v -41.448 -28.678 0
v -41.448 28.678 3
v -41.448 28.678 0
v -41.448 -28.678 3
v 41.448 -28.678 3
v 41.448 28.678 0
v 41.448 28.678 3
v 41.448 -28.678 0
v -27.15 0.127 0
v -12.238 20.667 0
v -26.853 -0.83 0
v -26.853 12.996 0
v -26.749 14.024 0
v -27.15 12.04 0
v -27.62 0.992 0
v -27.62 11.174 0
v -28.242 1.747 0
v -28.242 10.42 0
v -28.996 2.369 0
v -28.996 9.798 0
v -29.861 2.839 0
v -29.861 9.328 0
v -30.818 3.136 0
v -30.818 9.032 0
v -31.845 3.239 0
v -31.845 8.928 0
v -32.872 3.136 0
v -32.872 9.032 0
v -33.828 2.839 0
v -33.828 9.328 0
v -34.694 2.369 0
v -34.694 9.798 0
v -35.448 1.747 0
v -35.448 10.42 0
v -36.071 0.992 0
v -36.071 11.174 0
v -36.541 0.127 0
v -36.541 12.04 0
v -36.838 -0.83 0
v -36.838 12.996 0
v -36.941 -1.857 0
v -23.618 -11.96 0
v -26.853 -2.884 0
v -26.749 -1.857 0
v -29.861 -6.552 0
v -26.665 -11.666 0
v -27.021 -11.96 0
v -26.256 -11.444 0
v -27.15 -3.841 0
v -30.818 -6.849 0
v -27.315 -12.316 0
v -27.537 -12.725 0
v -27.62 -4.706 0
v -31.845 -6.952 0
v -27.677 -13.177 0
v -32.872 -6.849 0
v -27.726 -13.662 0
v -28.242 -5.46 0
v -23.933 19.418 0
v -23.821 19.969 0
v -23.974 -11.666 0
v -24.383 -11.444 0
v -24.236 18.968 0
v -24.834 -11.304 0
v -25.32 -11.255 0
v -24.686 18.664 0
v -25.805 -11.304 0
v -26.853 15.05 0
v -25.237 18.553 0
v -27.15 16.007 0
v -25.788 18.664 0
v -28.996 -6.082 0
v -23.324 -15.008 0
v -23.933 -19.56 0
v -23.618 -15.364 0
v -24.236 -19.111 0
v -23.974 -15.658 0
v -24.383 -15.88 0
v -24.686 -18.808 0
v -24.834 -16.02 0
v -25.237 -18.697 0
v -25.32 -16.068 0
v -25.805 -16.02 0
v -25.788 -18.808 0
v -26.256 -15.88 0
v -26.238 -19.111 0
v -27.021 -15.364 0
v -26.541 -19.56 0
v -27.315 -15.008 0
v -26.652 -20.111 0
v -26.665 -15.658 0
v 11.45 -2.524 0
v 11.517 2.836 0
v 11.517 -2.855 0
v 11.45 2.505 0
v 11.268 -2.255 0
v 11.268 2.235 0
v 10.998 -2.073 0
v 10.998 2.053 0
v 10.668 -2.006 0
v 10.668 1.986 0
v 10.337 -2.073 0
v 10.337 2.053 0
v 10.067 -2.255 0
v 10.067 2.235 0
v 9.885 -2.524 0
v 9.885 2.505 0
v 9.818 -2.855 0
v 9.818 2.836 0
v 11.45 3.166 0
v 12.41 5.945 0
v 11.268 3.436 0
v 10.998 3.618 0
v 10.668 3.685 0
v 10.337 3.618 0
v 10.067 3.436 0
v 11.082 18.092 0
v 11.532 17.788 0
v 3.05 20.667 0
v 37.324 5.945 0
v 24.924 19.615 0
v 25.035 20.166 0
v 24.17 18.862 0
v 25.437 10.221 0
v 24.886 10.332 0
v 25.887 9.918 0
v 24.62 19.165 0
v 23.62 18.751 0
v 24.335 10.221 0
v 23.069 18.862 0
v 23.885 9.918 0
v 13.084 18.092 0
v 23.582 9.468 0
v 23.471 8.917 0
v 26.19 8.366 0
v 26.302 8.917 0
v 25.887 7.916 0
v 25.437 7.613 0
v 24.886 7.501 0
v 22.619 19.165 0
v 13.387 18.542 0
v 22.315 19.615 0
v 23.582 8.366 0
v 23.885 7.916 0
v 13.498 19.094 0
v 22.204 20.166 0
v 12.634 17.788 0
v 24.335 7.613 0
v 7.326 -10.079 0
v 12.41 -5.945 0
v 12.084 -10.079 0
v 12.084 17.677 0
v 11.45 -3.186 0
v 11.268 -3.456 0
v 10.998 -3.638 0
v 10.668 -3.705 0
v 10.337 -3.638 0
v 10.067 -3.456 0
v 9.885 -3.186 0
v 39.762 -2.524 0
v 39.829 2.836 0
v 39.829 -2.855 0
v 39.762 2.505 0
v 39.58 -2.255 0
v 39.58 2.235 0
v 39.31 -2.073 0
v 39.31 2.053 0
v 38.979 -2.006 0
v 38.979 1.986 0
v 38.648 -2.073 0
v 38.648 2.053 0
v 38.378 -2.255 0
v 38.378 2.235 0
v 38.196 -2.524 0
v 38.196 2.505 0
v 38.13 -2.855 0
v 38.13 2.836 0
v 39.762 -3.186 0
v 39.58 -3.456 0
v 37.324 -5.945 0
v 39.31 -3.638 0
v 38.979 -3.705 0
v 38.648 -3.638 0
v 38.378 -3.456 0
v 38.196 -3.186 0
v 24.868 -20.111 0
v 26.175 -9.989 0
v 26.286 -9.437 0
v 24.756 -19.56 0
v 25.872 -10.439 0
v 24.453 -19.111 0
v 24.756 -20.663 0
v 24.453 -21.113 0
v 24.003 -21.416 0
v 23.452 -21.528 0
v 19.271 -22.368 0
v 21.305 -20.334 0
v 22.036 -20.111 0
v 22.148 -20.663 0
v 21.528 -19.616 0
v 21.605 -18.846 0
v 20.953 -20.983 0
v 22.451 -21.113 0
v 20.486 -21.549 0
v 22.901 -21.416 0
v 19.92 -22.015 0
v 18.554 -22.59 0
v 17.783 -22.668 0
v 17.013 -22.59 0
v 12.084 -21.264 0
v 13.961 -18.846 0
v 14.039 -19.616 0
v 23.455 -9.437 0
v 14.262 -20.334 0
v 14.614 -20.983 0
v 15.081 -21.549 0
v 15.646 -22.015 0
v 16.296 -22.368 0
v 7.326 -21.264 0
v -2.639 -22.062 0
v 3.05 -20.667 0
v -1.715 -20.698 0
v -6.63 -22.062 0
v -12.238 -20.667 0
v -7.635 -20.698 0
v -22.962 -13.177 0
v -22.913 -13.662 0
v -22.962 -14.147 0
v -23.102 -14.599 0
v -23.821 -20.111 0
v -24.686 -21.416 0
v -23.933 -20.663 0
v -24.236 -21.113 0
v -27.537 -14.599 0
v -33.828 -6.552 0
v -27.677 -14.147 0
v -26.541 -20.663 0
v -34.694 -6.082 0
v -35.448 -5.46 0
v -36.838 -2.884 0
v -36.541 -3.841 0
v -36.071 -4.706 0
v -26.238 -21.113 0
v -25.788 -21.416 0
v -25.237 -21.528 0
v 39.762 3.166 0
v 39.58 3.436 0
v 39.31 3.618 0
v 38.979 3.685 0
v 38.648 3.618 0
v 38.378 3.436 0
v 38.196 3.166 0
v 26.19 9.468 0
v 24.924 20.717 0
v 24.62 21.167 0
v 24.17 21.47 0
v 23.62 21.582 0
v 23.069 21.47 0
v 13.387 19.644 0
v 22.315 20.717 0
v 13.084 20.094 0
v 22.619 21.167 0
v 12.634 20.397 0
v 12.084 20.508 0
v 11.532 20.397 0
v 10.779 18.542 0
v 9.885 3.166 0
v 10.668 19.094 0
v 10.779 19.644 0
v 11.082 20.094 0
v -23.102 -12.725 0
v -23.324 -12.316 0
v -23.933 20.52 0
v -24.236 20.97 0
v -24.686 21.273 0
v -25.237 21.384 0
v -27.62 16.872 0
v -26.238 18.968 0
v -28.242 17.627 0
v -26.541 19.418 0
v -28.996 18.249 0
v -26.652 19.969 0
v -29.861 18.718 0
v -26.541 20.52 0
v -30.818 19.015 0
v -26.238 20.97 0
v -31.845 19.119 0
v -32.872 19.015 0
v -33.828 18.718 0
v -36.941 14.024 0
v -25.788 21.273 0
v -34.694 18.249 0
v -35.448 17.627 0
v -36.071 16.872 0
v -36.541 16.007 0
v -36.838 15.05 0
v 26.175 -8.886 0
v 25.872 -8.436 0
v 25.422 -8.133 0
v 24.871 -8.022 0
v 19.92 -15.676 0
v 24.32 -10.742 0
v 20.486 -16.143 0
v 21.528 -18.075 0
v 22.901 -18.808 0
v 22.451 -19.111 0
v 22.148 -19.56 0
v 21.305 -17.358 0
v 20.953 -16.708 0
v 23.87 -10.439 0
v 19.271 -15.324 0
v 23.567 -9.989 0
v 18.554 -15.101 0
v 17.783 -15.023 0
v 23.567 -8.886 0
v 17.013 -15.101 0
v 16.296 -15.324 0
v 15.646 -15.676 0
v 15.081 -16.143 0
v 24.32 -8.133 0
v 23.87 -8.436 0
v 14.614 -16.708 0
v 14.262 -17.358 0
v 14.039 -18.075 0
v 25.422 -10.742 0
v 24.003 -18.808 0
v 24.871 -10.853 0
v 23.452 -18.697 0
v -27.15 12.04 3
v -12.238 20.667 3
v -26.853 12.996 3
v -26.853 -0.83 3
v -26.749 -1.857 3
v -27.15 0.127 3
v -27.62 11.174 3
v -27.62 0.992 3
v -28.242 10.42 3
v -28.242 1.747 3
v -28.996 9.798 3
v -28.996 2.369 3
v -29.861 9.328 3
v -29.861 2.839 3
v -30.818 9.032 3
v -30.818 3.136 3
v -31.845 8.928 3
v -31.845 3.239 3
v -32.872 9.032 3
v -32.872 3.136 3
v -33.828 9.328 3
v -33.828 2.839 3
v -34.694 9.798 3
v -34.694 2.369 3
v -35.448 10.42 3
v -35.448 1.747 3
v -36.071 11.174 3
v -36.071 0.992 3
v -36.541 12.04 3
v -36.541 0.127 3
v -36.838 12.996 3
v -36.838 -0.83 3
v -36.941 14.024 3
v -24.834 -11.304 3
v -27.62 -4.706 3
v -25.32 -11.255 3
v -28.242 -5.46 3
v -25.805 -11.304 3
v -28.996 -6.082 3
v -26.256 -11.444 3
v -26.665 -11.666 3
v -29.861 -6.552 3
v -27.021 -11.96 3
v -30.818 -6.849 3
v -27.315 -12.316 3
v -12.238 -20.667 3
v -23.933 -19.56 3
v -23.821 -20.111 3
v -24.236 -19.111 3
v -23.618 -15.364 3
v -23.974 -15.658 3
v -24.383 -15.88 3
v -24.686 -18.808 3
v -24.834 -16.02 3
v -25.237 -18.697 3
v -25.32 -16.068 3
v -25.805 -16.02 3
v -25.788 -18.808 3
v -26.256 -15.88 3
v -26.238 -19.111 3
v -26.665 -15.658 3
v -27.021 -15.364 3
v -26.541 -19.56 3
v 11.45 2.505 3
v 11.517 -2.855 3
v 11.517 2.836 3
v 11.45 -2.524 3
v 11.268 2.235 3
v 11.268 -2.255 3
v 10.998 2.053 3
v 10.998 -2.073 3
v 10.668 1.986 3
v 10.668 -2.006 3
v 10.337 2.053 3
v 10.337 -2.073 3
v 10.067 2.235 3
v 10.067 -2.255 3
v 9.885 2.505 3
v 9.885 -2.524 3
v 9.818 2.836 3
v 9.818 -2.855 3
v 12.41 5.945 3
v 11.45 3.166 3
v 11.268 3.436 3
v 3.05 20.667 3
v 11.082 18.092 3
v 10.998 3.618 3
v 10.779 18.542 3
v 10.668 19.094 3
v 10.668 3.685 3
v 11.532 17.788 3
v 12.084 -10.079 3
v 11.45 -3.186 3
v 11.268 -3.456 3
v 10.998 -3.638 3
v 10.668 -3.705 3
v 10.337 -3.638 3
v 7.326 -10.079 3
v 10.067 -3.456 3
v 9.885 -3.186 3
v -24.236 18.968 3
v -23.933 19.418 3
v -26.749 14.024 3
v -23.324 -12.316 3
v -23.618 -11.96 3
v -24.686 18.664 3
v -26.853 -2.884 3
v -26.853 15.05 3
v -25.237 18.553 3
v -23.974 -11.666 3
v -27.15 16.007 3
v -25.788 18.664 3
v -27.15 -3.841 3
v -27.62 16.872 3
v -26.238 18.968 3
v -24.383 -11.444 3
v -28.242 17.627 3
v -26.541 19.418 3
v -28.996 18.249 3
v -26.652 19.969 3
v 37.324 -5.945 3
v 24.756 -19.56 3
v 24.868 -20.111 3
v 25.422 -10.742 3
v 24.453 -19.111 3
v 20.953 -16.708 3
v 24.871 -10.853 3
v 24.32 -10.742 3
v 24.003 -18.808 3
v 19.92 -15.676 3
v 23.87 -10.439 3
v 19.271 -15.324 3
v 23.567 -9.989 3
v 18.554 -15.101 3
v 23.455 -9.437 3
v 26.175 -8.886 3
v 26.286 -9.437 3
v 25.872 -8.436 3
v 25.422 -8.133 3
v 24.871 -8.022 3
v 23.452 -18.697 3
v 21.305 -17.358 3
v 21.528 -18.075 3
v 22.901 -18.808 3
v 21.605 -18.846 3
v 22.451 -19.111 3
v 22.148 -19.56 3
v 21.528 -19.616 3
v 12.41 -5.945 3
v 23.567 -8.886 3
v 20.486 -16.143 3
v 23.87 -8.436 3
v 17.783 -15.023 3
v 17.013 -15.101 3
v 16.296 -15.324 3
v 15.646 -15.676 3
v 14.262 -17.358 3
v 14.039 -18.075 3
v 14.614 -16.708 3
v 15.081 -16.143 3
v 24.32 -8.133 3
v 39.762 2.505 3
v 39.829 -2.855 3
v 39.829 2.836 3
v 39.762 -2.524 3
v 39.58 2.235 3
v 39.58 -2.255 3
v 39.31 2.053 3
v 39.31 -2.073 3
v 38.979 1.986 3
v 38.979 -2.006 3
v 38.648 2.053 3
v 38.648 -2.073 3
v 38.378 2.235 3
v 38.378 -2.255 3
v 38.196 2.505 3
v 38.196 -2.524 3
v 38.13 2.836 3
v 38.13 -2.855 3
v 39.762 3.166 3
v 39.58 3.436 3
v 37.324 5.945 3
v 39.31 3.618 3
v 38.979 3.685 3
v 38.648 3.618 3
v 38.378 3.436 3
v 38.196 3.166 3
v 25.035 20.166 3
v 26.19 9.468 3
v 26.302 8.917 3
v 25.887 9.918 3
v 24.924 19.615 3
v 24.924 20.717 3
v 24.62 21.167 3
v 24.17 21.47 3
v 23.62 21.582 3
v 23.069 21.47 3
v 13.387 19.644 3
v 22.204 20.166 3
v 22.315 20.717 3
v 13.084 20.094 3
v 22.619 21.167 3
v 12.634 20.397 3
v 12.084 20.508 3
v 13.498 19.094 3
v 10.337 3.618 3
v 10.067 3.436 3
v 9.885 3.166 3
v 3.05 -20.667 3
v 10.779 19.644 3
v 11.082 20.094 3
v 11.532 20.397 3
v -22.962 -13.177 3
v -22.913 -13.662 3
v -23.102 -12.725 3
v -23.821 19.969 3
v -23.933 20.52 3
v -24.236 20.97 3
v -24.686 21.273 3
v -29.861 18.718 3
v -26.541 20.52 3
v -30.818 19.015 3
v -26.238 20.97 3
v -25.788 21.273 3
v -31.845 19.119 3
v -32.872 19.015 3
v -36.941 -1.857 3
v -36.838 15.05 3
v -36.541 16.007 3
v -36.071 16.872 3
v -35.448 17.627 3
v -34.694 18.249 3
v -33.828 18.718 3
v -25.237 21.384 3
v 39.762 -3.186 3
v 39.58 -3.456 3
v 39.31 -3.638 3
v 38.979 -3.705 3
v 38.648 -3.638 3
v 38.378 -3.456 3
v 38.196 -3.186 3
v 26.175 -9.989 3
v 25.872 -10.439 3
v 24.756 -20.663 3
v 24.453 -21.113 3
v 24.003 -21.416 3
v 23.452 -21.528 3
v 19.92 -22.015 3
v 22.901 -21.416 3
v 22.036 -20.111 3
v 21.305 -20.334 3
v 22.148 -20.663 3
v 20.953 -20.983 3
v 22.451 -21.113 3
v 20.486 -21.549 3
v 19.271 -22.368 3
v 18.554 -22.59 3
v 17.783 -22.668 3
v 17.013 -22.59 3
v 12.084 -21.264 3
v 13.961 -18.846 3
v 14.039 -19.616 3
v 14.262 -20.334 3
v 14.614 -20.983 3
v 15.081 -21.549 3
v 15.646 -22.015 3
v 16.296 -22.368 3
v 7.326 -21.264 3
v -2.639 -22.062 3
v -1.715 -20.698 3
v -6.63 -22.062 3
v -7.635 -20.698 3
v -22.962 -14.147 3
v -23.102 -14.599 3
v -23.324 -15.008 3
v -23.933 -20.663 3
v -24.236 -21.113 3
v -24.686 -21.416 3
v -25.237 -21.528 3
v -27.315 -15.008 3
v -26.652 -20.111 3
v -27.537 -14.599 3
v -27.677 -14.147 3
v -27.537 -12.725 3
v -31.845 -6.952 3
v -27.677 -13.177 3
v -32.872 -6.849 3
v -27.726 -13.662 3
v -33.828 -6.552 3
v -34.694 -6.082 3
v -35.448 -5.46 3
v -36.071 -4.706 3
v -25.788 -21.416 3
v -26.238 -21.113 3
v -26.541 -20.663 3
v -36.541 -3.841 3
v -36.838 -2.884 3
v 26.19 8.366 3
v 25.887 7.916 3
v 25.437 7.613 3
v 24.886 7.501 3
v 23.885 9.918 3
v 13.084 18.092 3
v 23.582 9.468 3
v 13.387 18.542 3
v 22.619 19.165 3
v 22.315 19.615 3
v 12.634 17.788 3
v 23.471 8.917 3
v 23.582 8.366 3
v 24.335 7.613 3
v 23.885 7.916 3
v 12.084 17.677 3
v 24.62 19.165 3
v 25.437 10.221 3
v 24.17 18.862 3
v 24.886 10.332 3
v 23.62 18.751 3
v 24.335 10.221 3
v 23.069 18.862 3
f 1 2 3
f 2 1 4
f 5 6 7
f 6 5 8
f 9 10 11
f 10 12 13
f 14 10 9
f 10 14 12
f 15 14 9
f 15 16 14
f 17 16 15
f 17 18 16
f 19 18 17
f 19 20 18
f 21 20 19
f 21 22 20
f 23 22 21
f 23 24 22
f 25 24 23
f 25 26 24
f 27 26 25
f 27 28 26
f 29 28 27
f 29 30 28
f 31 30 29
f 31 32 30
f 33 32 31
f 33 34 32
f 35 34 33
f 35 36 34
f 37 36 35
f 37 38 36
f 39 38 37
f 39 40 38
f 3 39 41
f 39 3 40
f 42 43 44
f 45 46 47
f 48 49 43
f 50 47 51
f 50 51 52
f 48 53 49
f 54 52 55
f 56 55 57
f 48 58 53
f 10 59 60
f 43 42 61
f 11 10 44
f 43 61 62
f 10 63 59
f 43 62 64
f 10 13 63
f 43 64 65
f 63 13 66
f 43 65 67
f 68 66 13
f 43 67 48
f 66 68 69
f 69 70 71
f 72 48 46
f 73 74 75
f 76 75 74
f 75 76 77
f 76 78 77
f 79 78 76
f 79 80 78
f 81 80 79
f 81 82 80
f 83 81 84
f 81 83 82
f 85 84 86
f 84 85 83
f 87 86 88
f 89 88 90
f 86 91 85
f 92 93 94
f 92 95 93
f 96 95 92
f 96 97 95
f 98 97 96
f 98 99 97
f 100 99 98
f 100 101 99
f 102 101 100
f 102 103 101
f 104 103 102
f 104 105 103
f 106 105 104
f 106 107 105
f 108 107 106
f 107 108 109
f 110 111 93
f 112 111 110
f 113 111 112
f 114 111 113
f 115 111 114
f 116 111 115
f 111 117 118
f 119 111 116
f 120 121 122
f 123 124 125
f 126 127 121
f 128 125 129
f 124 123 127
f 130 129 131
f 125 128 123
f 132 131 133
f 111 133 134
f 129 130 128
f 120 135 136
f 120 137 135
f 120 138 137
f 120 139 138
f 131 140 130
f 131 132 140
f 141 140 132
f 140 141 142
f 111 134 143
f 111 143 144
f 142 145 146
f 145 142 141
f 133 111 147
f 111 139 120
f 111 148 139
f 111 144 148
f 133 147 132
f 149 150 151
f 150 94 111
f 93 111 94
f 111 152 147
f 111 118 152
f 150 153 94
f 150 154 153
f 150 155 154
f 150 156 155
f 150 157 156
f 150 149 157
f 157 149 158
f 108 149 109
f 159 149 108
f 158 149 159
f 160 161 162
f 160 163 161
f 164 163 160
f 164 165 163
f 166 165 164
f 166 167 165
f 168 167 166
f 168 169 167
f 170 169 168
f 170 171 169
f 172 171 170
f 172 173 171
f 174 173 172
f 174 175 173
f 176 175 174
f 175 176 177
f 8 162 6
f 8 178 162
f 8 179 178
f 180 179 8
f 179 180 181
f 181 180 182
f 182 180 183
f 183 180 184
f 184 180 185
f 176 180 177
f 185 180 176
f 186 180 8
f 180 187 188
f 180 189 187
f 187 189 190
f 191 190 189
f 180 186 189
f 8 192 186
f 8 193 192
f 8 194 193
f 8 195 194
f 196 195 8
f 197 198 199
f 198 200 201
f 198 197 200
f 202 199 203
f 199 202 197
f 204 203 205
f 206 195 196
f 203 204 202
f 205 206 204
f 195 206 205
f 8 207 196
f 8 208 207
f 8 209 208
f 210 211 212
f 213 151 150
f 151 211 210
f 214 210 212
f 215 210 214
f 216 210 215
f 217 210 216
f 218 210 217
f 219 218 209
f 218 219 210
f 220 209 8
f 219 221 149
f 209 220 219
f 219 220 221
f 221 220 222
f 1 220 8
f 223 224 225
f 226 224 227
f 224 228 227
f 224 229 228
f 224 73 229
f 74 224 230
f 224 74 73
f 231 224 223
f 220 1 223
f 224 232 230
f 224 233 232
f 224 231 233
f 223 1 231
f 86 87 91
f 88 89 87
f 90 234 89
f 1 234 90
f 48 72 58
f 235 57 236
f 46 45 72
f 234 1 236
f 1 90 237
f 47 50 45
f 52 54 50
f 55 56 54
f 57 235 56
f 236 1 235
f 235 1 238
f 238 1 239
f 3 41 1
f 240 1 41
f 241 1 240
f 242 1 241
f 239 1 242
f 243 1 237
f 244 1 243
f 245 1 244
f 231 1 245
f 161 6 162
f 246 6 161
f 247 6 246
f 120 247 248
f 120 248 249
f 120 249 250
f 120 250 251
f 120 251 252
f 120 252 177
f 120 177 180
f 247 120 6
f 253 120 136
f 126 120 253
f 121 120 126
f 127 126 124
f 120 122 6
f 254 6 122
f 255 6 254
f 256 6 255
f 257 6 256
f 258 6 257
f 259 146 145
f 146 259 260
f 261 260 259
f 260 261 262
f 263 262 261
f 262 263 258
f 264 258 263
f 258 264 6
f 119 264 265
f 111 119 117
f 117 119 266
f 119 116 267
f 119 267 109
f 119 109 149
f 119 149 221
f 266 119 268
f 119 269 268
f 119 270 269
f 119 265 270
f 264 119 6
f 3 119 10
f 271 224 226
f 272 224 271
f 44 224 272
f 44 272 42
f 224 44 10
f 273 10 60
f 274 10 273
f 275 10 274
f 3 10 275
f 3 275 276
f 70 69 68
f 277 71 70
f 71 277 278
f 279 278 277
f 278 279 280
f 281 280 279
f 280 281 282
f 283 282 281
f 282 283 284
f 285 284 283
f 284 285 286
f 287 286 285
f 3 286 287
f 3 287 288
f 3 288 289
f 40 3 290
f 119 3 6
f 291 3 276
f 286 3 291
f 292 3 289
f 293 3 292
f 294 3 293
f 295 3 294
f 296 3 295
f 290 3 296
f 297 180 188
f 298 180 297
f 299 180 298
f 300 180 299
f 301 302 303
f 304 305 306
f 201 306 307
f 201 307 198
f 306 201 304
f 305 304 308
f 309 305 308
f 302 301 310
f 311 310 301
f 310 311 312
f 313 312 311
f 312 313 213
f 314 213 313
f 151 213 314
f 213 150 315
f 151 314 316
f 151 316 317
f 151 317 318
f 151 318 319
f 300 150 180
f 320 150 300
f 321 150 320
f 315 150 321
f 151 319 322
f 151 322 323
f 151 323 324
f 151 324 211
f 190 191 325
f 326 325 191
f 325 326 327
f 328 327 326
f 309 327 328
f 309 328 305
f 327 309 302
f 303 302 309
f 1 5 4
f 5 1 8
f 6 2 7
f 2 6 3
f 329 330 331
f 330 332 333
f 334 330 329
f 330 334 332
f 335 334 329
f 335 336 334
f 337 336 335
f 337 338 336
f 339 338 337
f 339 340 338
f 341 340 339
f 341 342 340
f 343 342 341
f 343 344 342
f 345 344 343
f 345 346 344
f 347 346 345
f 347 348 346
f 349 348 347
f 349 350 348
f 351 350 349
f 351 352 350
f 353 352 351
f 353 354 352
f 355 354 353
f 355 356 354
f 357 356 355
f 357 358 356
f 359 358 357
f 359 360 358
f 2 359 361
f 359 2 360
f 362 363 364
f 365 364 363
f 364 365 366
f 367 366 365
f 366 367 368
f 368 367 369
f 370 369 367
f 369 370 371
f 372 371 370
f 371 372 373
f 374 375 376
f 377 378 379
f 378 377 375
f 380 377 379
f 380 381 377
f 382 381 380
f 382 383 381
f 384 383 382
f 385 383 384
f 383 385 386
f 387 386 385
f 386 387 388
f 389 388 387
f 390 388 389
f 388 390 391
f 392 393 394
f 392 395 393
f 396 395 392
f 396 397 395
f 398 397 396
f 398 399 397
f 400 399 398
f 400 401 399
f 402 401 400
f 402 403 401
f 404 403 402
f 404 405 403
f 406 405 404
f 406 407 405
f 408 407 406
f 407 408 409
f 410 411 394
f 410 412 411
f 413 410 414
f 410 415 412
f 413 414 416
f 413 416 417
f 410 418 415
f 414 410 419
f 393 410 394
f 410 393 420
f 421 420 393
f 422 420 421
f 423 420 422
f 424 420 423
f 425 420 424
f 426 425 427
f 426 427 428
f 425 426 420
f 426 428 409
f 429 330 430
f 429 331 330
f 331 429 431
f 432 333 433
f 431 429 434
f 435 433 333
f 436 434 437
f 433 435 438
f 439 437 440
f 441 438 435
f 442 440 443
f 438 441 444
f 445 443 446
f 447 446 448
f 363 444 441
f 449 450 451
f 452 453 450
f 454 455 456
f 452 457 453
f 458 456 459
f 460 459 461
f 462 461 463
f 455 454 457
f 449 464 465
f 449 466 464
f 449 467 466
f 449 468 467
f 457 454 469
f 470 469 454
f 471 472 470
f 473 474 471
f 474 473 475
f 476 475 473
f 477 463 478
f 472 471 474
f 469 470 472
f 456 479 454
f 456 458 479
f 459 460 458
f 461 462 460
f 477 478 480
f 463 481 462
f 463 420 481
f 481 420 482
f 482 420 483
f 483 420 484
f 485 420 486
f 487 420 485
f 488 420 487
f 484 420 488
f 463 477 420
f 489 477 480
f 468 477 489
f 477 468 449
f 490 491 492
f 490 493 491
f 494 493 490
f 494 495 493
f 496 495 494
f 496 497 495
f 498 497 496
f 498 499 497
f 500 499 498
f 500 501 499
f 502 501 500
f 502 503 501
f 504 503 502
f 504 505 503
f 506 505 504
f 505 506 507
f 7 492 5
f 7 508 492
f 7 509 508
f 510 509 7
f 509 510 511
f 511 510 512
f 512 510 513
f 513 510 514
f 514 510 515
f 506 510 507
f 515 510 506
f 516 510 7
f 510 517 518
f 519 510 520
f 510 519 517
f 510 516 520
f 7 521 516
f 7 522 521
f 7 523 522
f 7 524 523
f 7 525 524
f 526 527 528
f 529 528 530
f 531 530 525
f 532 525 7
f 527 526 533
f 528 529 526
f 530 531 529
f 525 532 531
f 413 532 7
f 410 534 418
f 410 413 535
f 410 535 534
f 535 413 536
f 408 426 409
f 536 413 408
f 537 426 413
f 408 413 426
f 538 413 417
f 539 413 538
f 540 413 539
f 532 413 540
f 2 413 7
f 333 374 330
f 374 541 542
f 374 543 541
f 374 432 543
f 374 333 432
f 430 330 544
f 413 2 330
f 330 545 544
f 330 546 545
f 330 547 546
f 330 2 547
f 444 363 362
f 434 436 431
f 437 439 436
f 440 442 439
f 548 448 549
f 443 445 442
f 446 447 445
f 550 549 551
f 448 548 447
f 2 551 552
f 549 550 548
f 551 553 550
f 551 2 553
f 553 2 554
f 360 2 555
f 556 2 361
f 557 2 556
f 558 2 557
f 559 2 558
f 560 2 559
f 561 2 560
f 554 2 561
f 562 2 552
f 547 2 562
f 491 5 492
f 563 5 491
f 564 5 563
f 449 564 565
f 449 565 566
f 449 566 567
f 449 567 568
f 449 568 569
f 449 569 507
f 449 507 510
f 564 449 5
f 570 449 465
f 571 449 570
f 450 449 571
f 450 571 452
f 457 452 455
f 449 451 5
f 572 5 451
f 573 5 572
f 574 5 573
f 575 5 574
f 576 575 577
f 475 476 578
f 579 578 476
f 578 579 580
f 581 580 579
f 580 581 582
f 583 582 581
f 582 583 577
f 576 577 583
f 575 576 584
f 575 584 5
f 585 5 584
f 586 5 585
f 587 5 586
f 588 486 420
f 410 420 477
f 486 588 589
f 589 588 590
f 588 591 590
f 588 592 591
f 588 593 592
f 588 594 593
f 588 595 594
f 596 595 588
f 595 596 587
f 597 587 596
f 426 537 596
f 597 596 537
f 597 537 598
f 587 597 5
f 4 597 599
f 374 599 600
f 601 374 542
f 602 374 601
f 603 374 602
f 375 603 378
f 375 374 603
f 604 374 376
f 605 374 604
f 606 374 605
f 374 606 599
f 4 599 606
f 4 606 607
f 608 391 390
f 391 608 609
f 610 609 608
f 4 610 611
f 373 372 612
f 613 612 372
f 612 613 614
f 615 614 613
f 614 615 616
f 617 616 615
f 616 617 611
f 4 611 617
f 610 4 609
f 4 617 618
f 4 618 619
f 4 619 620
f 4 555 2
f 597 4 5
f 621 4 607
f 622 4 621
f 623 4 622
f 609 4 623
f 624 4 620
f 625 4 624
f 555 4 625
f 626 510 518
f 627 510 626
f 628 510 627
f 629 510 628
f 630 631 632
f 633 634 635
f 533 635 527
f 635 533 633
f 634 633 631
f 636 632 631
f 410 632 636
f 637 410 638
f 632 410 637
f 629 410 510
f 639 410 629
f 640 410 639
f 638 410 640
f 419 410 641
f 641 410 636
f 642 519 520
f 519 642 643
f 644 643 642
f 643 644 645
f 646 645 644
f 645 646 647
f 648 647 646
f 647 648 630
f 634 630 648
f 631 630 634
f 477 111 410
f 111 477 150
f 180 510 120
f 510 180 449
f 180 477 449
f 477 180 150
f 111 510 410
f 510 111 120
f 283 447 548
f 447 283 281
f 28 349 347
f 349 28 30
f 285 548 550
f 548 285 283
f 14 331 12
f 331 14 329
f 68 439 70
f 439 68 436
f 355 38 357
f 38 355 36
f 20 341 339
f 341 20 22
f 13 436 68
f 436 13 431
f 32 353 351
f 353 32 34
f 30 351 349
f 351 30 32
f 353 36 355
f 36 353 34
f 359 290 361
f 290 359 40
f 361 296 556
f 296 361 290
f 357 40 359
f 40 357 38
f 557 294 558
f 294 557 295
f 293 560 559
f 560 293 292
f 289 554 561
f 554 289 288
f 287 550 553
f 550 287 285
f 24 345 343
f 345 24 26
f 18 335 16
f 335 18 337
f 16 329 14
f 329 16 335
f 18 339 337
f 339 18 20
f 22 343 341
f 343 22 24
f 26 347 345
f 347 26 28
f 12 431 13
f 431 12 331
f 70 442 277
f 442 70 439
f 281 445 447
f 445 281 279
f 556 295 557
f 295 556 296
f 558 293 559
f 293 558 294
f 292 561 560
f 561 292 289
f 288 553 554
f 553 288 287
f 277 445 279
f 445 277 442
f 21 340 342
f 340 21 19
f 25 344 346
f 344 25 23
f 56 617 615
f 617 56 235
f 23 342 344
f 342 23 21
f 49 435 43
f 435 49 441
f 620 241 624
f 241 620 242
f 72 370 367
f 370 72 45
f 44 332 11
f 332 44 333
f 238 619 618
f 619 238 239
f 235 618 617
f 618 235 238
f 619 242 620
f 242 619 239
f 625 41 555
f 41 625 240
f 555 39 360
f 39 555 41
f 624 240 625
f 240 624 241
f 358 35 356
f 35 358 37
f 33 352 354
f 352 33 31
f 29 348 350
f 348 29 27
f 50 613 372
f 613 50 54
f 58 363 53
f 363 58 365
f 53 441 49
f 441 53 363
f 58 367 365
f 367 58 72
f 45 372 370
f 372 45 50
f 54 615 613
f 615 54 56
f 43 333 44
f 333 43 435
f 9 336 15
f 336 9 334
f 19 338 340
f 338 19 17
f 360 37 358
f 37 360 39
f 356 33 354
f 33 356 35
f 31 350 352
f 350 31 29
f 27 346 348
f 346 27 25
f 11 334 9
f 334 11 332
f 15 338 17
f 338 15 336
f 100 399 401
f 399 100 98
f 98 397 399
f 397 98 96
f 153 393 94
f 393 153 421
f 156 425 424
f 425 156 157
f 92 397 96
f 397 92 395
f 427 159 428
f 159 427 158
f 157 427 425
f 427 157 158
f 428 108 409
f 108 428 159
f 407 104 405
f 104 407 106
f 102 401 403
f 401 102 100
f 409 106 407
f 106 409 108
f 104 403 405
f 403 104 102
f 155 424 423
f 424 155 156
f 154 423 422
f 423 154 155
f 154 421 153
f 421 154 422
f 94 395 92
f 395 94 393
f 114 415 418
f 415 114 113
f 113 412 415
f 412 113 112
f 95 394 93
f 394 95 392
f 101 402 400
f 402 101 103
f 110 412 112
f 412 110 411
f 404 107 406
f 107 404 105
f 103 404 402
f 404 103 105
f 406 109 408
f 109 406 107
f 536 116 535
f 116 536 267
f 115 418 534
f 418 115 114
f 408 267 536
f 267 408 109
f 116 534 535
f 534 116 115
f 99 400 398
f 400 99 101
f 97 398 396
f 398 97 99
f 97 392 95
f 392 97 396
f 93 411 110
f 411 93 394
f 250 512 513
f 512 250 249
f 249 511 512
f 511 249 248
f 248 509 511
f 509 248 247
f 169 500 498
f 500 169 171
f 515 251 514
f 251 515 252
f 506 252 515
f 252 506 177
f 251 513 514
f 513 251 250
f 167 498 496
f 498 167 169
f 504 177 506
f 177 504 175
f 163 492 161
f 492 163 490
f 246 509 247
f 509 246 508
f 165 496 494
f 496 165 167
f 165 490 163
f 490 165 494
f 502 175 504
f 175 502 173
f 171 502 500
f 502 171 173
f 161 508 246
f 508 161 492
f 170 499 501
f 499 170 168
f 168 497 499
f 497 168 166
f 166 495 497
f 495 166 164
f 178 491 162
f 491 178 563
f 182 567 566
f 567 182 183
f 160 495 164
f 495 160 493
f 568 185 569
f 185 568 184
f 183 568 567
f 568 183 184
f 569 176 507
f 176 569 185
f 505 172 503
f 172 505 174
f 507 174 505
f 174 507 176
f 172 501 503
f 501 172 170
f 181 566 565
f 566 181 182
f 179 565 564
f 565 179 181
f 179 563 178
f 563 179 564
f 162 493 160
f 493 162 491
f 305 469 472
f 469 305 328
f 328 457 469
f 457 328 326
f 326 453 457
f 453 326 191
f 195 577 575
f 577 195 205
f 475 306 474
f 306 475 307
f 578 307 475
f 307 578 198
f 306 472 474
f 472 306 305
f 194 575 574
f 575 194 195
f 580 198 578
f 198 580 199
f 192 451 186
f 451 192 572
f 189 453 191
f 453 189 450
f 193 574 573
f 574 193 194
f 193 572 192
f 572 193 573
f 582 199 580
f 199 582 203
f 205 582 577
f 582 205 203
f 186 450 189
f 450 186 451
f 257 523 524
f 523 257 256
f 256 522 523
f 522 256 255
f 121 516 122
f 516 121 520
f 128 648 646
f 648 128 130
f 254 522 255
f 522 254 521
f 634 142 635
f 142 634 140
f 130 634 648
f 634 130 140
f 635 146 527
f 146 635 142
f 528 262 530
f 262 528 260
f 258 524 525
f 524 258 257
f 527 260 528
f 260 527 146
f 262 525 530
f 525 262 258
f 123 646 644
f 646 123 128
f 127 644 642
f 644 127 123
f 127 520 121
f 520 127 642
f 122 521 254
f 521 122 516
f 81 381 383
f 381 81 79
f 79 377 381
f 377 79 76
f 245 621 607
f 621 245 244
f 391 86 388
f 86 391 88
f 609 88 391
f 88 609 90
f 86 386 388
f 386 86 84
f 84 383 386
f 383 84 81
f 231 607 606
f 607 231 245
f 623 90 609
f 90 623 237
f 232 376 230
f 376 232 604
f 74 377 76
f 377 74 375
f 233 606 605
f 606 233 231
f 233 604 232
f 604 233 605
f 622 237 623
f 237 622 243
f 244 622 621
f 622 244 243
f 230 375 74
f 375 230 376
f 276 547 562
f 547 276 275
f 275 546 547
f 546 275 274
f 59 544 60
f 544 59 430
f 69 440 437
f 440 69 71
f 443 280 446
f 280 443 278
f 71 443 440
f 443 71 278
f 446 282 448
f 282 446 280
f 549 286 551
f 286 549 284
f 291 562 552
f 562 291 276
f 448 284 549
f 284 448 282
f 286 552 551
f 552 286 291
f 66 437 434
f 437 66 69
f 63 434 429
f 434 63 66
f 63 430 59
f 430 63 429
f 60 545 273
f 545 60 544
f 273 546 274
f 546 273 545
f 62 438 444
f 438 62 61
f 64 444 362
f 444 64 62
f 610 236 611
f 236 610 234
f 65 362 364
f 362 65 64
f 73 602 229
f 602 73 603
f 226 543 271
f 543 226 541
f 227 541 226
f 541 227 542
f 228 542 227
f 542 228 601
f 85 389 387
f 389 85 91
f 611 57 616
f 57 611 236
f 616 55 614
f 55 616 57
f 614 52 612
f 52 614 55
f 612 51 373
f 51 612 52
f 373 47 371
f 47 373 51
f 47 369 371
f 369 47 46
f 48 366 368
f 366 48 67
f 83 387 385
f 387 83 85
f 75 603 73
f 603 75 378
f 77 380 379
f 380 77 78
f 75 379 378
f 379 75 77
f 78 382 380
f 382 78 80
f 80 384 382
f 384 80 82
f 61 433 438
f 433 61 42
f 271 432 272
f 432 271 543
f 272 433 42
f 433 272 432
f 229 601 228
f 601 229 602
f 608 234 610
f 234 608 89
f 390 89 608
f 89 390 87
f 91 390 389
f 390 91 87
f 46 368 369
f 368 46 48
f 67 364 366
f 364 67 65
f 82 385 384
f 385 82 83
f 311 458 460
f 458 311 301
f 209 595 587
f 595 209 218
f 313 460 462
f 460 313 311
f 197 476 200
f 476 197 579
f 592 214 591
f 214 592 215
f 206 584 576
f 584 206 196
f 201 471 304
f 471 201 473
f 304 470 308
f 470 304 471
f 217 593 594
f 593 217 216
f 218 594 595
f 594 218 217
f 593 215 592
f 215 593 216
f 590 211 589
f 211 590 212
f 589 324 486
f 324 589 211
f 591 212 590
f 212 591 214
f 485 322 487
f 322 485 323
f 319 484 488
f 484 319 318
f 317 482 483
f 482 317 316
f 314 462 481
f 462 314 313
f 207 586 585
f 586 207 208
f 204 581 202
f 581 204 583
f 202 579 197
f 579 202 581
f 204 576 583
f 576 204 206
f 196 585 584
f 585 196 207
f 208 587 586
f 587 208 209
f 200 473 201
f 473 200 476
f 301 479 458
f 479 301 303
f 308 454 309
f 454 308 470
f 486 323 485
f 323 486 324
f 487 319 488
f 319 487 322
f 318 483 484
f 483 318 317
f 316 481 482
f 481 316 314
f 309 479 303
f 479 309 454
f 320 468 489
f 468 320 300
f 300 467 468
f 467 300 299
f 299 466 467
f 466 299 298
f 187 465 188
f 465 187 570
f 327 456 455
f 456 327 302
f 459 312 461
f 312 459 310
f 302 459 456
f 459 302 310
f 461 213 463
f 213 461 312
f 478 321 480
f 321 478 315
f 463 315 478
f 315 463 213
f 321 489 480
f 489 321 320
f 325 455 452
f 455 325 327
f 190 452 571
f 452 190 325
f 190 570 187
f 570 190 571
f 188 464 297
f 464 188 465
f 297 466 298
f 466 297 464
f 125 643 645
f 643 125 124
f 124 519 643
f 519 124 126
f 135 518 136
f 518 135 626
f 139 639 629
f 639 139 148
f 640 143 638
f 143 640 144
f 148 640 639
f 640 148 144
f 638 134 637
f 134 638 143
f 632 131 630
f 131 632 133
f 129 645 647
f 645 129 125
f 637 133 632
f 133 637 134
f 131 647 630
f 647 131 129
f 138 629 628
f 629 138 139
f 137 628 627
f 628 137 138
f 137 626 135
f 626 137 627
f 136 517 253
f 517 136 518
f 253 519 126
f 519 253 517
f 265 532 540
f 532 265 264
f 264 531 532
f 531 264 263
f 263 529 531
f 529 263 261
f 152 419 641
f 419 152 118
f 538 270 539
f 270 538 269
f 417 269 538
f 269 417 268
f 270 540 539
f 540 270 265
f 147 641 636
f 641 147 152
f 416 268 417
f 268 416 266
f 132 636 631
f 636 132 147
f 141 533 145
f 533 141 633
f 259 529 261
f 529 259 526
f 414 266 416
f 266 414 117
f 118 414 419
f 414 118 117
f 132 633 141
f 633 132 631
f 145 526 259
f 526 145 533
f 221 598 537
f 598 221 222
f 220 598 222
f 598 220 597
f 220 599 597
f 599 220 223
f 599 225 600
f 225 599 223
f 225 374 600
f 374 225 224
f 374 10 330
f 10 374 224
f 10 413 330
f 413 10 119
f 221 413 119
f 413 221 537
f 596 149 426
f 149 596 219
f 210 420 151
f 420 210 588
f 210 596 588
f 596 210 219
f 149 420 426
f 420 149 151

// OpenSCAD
// Module names are of the form poly_<inkscape-path-id>().  As a result,
// you can associate a polygon in this OpenSCAD program with the corresponding
// SVG element in the Inkscape document by looking for the XML element with
// the attribute id="inkscape-path-id".

// fudge value is used to ensure that subtracted solids are a tad taller
// in the z dimension than the polygon being subtracted from.  This helps
// keep the resulting .stl file manifold.
fudge = 0.1;

module poly_path4902(h)
{
  scale([25.4/90, -25.4/90, 1]) union()
  {
    difference()
    {
       linear_extrude(height=h)
         polygon([[146.863320,-101.615264],[146.863320,101.615265],[-146.863320,101.615265],[-146.863320,-101.615264]]);
       translate([0, 0, -fudge])
         linear_extrude(height=h+2*fudge)
           polygon([[132.250040,-21.064465],[132.250040,21.064455],[43.972670,21.064455],[43.972670,-21.064465]]);
       translate([0, 0, -fudge])
         linear_extrude(height=h+2*fudge)
           polygon([[-112.835970,-31.634775],[-116.475170,-32.001529],[-119.864842,-33.053417],[-122.932341,-34.717885],[-125.605018,-36.922378],[-127.810226,-39.594339],[-129.475319,-42.661213],[-130.527649,-46.050443],[-130.894570,-49.689475],[-130.527649,-53.328504],[-129.475319,-56.717733],[-127.810226,-59.784604],[-125.605018,-62.456564],[-122.932341,-64.661056],[-119.864842,-66.325524],[-116.475170,-67.377413],[-112.835970,-67.744165],[-109.196938,-67.377413],[-105.807709,-66.325524],[-102.740837,-64.661056],[-100.068877,-62.456564],[-97.864387,-59.784604],[-96.199920,-56.717733],[-95.148033,-53.328504],[-94.781280,-49.689475],[-95.148033,-46.050443],[-96.199920,-42.661213],[-97.864387,-39.594339],[-100.068877,-36.922378],[-102.740837,-34.717885],[-105.807709,-33.053417],[-109.196938,-32.001529],[-112.835970,-31.634775]]);
       translate([0, 0, -fudge])
         linear_extrude(height=h+2*fudge)
           polygon([[-112.835970,24.634775],[-116.475170,24.268021],[-119.864842,23.216133],[-122.932341,21.551665],[-125.605018,19.347172],[-127.810226,16.675211],[-129.475319,13.608337],[-130.527649,10.219107],[-130.894570,6.580075],[-130.527649,2.940875],[-129.475319,-0.448798],[-127.810226,-3.516296],[-125.605018,-6.188973],[-122.932341,-8.394182],[-119.864842,-10.059275],[-116.475170,-11.111605],[-112.835970,-11.478525],[-109.196938,-11.111605],[-105.807709,-10.059275],[-102.740837,-8.394182],[-100.068877,-6.188973],[-97.864387,-3.516296],[-96.199920,-0.448798],[-95.148033,2.940875],[-94.781280,6.580075],[-95.148033,10.219107],[-96.199920,13.608337],[-97.864387,16.675211],[-100.068877,19.347172],[-102.740837,21.551665],[-105.807709,23.216133],[-109.196938,24.268021],[-112.835970,24.634775]]);
       translate([0, 0, -fudge])
         linear_extrude(height=h+2*fudge)
           polygon([[37.800790,13.126955],[36.628183,12.890932],[35.670907,12.246583],[35.025643,11.289491],[34.789070,10.115235],[35.025643,8.944883],[35.670907,7.988765],[36.628183,7.343926],[37.800790,7.107415],[38.971142,7.343926],[39.927260,7.988765],[40.572098,8.944883],[40.808610,10.115235],[40.572098,11.289491],[39.927260,12.246583],[38.971142,12.890932],[37.800790,13.126955]]);
       translate([0, 0, -fudge])
         linear_extrude(height=h+2*fudge)
           polygon([[37.800790,-7.037115],[36.628183,-7.273688],[35.670907,-7.918953],[35.025643,-8.876229],[34.789070,-10.048835],[35.025643,-11.219186],[35.670907,-12.175300],[36.628183,-12.820135],[37.800790,-13.056646],[38.971142,-12.820135],[39.927260,-12.175301],[40.572098,-11.219186],[40.808610,-10.048835],[40.572098,-8.876229],[39.927260,-7.918953],[38.971142,-7.273688],[37.800790,-7.037115]]);
       translate([0, 0, -fudge])
         linear_extrude(height=h+2*fudge)
           polygon([[138.113320,-7.037115],[136.942970,-7.273688],[135.986855,-7.918953],[135.342020,-8.876229],[135.105510,-10.048835],[135.342020,-11.219186],[135.986855,-12.175300],[136.942970,-12.820135],[138.113320,-13.056646],[139.285927,-12.820135],[140.243202,-12.175301],[140.888467,-11.219186],[141.125040,-10.048835],[140.888467,-8.876229],[140.243202,-7.918953],[139.285927,-7.273688],[138.113320,-7.037115]]);
       translate([0, 0, -fudge])
         linear_extrude(height=h+2*fudge)
           polygon([[138.113320,13.126955],[136.942970,12.890932],[135.986855,12.246583],[135.342020,11.289491],[135.105510,10.115235],[135.342020,8.944883],[135.986855,7.988765],[136.942970,7.343926],[138.113320,7.107415],[139.285927,7.343926],[140.243202,7.988765],[140.888467,8.944883],[141.125040,10.115235],[140.888467,11.289491],[140.243202,12.246583],[139.285927,12.890932],[138.113320,13.126955]]);
       translate([0, 0, -fudge])
         linear_extrude(height=h+2*fudge)
           polygon([[83.097680,76.279314],[81.145592,75.885028],[79.551291,74.809590],[78.476277,73.214131],[78.082050,71.259784],[78.476277,69.308308],[79.551291,67.715351],[81.145592,66.641681],[83.097680,66.248064],[85.049766,66.641681],[86.644064,67.715351],[87.719075,69.308308],[88.113300,71.259784],[87.719075,73.214131],[86.644064,74.809590],[85.049766,75.885028],[83.097680,76.279314]]);
       translate([0, 0, -fudge])
         linear_extrude(height=h+2*fudge)
           polygon([[83.691430,-66.439476],[81.739342,-66.833153],[80.145041,-67.907251],[79.070027,-69.501368],[78.675800,-71.455106],[79.070027,-73.407193],[80.145041,-75.001494],[81.739342,-76.076508],[83.691430,-76.470736],[85.643518,-76.076508],[87.237819,-75.001494],[88.312833,-73.407193],[88.707060,-71.455106],[88.312833,-69.501368],[87.237819,-67.907251],[85.643518,-66.833153],[83.691430,-66.439476]]);
       translate([0, 0, -fudge])
         linear_extrude(height=h+2*fudge)
           polygon([[-89.421900,76.279314],[-91.373988,75.885028],[-92.968289,74.809590],[-94.043303,73.214131],[-94.437530,71.259784],[-94.043303,69.308308],[-92.968289,67.715351],[-91.373988,66.641681],[-89.421900,66.248064],[-87.469812,66.641681],[-85.875511,67.715351],[-84.800497,69.308308],[-84.406270,71.259784],[-84.800497,73.214131],[-85.875511,74.809590],[-87.469812,75.885028],[-89.421900,76.279314]]);
       translate([0, 0, -fudge])
         linear_extrude(height=h+2*fudge)
           polygon([[-89.421900,-65.740255],[-91.373988,-66.133933],[-92.968289,-67.208029],[-94.043303,-68.802144],[-94.437530,-70.755875],[-94.043303,-72.707967],[-92.968289,-74.302268],[-91.373988,-75.377280],[-89.421900,-75.771505],[-87.469812,-75.377280],[-85.875511,-74.302268],[-84.800497,-72.707967],[-84.406270,-70.755875],[-84.800497,-68.802144],[-85.875511,-67.208029],[-87.469812,-66.133933],[-89.421900,-65.740255]]);
       translate([0, 0, -fudge])
         linear_extrude(height=h+2*fudge)
           polygon([[-89.714870,56.935555],[-91.433834,56.762527],[-93.034695,56.266182],[-94.483211,55.480622],[-95.745143,54.439950],[-96.786249,53.178269],[-97.572289,51.729685],[-98.069023,50.128298],[-98.242210,48.408215],[-98.069023,46.689250],[-97.572289,45.088388],[-96.786249,43.639870],[-95.745143,42.377937],[-94.483211,41.336829],[-93.034695,40.550787],[-91.433834,40.054052],[-89.714870,39.880865],[-87.995905,40.054052],[-86.395044,40.550787],[-84.946526,41.336829],[-83.684593,42.377937],[-82.643484,43.639870],[-81.857442,45.088388],[-81.360707,46.689250],[-81.187520,48.408215],[-81.360707,50.128298],[-81.857442,51.729685],[-82.643484,53.178269],[-83.684593,54.439950],[-84.946526,55.480622],[-86.395044,56.266182],[-87.995905,56.762527],[-89.714870,56.935555]]);
       translate([0, 0, -fudge])
         linear_extrude(height=h+2*fudge)
           polygon([[63.011740,80.318375],[60.282100,80.043427],[57.739823,79.254776],[55.439339,78.006715],[53.435075,76.353532],[51.781458,74.349519],[50.532917,72.048966],[49.743878,69.506165],[49.468770,66.775405],[49.743878,64.045767],[50.532917,61.503492],[51.781458,59.203008],[53.435075,57.198743],[55.439339,55.545125],[57.739823,54.296582],[60.282100,53.507543],[63.011740,53.232435],[65.741375,53.507543],[68.283648,54.296582],[70.584132,55.545125],[72.588398,57.198743],[74.242017,59.203008],[75.490561,61.503492],[76.279601,64.045767],[76.554710,66.775405],[76.279601,69.506165],[75.490561,72.048966],[74.242017,74.349519],[72.588398,76.353532],[70.584132,78.006715],[68.283648,79.254776],[65.741375,80.043427],[63.011740,80.318375]]);
       translate([0, 0, -fudge])
         linear_extrude(height=h+2*fudge)
           polygon([[88.125020,38.455084],[86.172934,38.061407],[84.578636,36.987310],[83.503625,35.393192],[83.109400,33.439455],[83.503625,31.487368],[84.578636,29.893071],[86.172934,28.818060],[88.125020,28.423834],[90.077108,28.818060],[91.671409,29.893071],[92.746423,31.487368],[93.140650,33.439455],[92.746423,35.393192],[91.671409,36.987310],[90.077108,38.061407],[88.125020,38.455084]]);
       translate([0, 0, -fudge])
         linear_extrude(height=h+2*fudge)
           polygon([[88.179720,-26.580085],[86.227634,-26.973763],[84.633336,-28.047860],[83.558325,-29.641978],[83.164100,-31.595715],[83.558325,-33.547803],[84.633336,-35.142104],[86.227634,-36.217118],[88.179720,-36.611345],[90.131812,-36.217118],[91.726112,-35.142104],[92.801124,-33.547803],[93.195350,-31.595715],[92.801124,-29.641978],[91.726112,-28.047860],[90.131812,-26.973763],[88.179720,-26.580085]]);
       translate([0, 0, -fudge])
         linear_extrude(height=h+2*fudge)
           polygon([[42.816440,-62.634785],[40.862703,-63.029073],[39.268585,-64.104514],[38.194487,-65.699973],[37.800810,-67.654315],[38.194487,-69.605792],[39.268585,-71.198749],[40.862703,-72.272419],[42.816440,-72.666035],[44.767917,-72.272419],[46.360874,-71.198749],[47.434544,-69.605792],[47.828160,-67.654315],[47.434544,-65.699973],[46.360874,-64.104514],[44.767917,-63.029073],[42.816440,-62.634785]]);
       translate([0, 0, -fudge])
         linear_extrude(height=h+2*fudge)
           polygon([[-43.363270,73.228525],[-43.363270,-73.228545],[10.808620,-73.228545],[10.808620,73.228525],[-6.078110,73.337905],[-9.351550,78.173845],[-23.492180,78.173845],[-27.054680,73.337905]]);
       translate([0, 0, -fudge])
         linear_extrude(height=h+2*fudge)
           polygon([[42.816440,35.712895],[42.816440,75.345715],[25.957060,75.345715],[25.957060,35.712895]]);
       translate([0, 0, -fudge])
         linear_extrude(height=h+2*fudge)
           polygon([[42.816440,35.712895]]);
    }
  }
}

poly_path4902(3);
